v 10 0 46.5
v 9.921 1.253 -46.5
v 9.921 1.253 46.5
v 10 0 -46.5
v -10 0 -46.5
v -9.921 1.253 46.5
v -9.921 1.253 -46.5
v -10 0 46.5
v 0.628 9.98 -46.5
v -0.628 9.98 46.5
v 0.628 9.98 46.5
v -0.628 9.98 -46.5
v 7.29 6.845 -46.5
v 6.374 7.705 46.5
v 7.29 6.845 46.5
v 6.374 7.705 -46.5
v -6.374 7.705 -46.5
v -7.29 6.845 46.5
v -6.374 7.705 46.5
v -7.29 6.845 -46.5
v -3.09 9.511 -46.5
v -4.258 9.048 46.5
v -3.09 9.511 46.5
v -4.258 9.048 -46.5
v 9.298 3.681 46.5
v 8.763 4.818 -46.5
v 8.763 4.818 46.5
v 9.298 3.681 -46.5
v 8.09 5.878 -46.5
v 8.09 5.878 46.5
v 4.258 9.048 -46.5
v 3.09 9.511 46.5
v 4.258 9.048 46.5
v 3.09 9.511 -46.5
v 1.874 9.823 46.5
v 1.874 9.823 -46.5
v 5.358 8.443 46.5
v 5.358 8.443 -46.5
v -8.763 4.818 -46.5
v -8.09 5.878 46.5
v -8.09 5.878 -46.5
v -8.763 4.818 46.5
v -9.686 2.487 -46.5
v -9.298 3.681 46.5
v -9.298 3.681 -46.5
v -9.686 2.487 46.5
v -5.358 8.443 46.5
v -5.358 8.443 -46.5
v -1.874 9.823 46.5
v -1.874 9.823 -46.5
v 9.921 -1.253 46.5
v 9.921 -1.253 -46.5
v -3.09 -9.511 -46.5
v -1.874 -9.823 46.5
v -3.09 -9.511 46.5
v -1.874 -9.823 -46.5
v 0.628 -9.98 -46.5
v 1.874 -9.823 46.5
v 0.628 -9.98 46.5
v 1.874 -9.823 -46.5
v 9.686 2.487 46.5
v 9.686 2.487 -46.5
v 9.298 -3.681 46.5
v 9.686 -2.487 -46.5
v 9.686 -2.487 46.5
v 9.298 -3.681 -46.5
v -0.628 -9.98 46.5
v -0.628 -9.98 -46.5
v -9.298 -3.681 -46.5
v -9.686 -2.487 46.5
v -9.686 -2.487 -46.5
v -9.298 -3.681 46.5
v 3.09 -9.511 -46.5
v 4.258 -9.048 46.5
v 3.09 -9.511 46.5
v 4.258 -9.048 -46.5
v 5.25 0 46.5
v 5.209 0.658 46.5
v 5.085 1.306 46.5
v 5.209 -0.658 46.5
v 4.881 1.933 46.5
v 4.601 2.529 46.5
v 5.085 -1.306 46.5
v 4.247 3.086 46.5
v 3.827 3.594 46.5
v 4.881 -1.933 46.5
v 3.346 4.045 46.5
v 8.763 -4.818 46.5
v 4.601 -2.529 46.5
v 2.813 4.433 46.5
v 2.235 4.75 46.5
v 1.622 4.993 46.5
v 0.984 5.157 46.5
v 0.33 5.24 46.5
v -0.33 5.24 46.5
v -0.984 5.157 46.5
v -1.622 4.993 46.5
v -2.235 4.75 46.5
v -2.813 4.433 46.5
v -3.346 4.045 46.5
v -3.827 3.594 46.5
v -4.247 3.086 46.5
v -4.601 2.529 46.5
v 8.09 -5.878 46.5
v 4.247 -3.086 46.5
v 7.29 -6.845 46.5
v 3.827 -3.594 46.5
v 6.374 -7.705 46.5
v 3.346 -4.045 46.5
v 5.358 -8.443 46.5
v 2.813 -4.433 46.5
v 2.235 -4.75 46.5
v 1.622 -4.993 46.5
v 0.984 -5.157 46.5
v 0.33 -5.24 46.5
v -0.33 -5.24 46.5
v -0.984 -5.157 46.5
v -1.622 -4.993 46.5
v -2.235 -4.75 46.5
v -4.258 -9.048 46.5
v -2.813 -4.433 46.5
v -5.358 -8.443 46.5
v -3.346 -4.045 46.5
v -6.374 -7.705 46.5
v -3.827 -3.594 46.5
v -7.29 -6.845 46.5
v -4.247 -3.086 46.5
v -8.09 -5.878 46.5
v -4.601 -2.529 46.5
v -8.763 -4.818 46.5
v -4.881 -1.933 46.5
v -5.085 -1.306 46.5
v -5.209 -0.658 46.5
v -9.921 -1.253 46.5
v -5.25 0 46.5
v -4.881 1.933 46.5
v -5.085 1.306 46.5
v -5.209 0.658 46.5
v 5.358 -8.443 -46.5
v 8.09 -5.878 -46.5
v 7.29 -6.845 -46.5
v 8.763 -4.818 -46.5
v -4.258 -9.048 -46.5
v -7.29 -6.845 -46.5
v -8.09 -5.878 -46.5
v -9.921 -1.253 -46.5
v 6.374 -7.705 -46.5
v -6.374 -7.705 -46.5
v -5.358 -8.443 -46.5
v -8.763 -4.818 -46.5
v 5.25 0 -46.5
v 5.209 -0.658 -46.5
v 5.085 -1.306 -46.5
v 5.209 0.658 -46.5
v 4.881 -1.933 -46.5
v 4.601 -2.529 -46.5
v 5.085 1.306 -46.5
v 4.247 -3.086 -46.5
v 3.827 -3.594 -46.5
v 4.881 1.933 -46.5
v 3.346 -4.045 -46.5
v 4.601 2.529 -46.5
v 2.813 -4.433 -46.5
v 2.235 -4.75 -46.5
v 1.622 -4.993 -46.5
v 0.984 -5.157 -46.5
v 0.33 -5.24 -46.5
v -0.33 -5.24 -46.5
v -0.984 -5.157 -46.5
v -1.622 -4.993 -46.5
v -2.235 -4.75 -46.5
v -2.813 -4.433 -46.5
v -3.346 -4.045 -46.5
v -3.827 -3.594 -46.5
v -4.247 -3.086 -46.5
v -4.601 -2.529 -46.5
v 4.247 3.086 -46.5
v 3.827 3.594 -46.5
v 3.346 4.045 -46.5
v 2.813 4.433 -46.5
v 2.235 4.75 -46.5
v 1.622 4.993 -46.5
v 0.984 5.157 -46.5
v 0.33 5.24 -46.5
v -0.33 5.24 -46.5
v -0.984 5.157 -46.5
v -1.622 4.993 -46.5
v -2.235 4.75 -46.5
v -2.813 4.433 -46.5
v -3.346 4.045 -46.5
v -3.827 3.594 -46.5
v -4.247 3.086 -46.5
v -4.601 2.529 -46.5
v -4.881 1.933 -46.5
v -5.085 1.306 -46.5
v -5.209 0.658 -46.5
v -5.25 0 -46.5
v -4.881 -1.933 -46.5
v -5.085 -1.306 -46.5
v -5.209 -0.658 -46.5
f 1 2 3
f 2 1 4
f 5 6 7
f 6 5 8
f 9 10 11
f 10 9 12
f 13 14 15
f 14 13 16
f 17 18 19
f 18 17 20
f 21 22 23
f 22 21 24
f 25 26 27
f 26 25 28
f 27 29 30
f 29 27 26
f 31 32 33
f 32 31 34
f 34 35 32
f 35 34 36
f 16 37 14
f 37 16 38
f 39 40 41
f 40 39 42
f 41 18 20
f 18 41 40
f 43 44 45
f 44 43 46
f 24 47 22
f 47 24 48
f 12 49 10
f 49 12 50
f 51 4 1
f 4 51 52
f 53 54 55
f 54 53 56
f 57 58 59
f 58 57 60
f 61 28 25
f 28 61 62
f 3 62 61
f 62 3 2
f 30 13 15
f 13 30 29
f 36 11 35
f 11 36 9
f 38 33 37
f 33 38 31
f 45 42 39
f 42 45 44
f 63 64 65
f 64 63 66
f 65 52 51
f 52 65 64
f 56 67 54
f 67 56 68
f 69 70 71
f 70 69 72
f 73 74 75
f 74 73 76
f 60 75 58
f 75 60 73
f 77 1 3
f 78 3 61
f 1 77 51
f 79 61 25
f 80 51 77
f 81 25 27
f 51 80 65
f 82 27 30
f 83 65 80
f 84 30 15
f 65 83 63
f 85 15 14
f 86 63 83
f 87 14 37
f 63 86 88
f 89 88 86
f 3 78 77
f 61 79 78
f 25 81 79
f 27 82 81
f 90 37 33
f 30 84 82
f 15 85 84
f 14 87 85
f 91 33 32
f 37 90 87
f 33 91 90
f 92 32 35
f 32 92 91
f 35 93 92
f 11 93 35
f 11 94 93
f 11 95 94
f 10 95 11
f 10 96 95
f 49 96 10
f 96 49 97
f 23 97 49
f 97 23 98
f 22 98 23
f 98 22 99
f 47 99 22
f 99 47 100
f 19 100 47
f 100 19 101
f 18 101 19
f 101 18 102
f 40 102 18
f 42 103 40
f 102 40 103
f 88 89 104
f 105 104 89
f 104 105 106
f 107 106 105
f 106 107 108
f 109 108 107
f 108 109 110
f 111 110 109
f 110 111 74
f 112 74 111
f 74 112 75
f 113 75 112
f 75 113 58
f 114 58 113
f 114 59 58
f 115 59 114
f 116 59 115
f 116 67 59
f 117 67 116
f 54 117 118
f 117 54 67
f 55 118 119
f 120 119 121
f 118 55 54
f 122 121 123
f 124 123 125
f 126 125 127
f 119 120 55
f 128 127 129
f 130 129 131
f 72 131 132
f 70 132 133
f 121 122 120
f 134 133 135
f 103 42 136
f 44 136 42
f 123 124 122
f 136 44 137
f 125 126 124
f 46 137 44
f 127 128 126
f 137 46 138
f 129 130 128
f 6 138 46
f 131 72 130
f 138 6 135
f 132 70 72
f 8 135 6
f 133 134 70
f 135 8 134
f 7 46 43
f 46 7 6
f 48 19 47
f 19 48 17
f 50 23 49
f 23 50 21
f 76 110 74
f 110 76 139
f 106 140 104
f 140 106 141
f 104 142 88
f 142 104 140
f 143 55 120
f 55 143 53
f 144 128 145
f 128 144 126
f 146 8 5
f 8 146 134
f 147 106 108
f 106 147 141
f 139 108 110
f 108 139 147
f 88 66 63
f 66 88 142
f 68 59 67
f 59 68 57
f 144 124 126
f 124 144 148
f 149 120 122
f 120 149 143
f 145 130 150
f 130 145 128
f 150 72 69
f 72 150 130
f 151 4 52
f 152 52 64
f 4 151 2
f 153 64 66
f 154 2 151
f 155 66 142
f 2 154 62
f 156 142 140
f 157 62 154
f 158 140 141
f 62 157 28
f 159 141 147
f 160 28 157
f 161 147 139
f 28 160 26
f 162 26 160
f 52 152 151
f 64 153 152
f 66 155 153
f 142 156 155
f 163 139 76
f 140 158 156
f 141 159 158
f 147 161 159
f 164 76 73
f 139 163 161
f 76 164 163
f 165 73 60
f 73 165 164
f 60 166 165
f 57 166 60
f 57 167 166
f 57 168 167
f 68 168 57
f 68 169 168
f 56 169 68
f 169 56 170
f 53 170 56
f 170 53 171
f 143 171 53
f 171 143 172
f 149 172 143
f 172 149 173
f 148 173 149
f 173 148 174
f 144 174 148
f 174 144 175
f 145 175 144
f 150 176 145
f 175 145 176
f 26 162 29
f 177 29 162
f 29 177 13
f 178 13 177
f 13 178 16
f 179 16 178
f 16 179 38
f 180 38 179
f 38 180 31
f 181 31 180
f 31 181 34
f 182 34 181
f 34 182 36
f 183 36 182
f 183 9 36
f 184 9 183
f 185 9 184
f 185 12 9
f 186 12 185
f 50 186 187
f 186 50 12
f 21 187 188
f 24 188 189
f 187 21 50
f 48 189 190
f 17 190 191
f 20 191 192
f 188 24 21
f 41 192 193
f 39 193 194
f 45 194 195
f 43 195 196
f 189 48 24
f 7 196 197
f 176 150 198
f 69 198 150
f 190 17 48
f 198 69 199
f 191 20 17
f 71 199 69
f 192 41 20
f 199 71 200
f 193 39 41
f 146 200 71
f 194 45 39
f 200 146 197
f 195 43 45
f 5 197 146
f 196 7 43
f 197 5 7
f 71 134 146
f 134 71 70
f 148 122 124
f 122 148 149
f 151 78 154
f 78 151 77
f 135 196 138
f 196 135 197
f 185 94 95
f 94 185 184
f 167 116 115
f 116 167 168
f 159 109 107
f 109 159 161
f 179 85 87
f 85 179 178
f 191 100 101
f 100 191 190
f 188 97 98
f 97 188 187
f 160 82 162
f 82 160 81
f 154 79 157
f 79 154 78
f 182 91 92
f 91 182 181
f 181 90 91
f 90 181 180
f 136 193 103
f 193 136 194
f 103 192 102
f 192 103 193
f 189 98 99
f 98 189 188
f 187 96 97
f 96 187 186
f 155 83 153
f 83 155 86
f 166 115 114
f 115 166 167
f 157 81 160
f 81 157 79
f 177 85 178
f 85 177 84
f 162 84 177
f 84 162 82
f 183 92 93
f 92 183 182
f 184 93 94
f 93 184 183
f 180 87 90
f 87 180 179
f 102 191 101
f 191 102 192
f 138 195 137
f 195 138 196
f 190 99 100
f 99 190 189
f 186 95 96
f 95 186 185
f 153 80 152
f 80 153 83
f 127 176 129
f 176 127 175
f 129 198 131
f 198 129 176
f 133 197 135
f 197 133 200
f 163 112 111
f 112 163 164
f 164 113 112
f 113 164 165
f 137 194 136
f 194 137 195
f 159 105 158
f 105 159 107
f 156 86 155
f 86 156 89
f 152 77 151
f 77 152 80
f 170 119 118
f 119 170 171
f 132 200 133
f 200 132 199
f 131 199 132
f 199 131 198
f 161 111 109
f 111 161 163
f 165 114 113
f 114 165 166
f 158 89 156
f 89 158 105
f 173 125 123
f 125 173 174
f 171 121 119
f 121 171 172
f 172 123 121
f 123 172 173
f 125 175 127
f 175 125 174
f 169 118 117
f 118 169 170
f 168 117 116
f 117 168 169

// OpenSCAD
$fn = 50;


difference() {
	union() {
		translate(v = [0, 0, -46.5000000000]) {
			cylinder(h = 93, r = 10.0000000000);
		}
	}
	union() {
		translate(v = [0, 0, -100.0000000000]) {
			cylinder(h = 200, r = 5.2500000000);
		}
	}
}
